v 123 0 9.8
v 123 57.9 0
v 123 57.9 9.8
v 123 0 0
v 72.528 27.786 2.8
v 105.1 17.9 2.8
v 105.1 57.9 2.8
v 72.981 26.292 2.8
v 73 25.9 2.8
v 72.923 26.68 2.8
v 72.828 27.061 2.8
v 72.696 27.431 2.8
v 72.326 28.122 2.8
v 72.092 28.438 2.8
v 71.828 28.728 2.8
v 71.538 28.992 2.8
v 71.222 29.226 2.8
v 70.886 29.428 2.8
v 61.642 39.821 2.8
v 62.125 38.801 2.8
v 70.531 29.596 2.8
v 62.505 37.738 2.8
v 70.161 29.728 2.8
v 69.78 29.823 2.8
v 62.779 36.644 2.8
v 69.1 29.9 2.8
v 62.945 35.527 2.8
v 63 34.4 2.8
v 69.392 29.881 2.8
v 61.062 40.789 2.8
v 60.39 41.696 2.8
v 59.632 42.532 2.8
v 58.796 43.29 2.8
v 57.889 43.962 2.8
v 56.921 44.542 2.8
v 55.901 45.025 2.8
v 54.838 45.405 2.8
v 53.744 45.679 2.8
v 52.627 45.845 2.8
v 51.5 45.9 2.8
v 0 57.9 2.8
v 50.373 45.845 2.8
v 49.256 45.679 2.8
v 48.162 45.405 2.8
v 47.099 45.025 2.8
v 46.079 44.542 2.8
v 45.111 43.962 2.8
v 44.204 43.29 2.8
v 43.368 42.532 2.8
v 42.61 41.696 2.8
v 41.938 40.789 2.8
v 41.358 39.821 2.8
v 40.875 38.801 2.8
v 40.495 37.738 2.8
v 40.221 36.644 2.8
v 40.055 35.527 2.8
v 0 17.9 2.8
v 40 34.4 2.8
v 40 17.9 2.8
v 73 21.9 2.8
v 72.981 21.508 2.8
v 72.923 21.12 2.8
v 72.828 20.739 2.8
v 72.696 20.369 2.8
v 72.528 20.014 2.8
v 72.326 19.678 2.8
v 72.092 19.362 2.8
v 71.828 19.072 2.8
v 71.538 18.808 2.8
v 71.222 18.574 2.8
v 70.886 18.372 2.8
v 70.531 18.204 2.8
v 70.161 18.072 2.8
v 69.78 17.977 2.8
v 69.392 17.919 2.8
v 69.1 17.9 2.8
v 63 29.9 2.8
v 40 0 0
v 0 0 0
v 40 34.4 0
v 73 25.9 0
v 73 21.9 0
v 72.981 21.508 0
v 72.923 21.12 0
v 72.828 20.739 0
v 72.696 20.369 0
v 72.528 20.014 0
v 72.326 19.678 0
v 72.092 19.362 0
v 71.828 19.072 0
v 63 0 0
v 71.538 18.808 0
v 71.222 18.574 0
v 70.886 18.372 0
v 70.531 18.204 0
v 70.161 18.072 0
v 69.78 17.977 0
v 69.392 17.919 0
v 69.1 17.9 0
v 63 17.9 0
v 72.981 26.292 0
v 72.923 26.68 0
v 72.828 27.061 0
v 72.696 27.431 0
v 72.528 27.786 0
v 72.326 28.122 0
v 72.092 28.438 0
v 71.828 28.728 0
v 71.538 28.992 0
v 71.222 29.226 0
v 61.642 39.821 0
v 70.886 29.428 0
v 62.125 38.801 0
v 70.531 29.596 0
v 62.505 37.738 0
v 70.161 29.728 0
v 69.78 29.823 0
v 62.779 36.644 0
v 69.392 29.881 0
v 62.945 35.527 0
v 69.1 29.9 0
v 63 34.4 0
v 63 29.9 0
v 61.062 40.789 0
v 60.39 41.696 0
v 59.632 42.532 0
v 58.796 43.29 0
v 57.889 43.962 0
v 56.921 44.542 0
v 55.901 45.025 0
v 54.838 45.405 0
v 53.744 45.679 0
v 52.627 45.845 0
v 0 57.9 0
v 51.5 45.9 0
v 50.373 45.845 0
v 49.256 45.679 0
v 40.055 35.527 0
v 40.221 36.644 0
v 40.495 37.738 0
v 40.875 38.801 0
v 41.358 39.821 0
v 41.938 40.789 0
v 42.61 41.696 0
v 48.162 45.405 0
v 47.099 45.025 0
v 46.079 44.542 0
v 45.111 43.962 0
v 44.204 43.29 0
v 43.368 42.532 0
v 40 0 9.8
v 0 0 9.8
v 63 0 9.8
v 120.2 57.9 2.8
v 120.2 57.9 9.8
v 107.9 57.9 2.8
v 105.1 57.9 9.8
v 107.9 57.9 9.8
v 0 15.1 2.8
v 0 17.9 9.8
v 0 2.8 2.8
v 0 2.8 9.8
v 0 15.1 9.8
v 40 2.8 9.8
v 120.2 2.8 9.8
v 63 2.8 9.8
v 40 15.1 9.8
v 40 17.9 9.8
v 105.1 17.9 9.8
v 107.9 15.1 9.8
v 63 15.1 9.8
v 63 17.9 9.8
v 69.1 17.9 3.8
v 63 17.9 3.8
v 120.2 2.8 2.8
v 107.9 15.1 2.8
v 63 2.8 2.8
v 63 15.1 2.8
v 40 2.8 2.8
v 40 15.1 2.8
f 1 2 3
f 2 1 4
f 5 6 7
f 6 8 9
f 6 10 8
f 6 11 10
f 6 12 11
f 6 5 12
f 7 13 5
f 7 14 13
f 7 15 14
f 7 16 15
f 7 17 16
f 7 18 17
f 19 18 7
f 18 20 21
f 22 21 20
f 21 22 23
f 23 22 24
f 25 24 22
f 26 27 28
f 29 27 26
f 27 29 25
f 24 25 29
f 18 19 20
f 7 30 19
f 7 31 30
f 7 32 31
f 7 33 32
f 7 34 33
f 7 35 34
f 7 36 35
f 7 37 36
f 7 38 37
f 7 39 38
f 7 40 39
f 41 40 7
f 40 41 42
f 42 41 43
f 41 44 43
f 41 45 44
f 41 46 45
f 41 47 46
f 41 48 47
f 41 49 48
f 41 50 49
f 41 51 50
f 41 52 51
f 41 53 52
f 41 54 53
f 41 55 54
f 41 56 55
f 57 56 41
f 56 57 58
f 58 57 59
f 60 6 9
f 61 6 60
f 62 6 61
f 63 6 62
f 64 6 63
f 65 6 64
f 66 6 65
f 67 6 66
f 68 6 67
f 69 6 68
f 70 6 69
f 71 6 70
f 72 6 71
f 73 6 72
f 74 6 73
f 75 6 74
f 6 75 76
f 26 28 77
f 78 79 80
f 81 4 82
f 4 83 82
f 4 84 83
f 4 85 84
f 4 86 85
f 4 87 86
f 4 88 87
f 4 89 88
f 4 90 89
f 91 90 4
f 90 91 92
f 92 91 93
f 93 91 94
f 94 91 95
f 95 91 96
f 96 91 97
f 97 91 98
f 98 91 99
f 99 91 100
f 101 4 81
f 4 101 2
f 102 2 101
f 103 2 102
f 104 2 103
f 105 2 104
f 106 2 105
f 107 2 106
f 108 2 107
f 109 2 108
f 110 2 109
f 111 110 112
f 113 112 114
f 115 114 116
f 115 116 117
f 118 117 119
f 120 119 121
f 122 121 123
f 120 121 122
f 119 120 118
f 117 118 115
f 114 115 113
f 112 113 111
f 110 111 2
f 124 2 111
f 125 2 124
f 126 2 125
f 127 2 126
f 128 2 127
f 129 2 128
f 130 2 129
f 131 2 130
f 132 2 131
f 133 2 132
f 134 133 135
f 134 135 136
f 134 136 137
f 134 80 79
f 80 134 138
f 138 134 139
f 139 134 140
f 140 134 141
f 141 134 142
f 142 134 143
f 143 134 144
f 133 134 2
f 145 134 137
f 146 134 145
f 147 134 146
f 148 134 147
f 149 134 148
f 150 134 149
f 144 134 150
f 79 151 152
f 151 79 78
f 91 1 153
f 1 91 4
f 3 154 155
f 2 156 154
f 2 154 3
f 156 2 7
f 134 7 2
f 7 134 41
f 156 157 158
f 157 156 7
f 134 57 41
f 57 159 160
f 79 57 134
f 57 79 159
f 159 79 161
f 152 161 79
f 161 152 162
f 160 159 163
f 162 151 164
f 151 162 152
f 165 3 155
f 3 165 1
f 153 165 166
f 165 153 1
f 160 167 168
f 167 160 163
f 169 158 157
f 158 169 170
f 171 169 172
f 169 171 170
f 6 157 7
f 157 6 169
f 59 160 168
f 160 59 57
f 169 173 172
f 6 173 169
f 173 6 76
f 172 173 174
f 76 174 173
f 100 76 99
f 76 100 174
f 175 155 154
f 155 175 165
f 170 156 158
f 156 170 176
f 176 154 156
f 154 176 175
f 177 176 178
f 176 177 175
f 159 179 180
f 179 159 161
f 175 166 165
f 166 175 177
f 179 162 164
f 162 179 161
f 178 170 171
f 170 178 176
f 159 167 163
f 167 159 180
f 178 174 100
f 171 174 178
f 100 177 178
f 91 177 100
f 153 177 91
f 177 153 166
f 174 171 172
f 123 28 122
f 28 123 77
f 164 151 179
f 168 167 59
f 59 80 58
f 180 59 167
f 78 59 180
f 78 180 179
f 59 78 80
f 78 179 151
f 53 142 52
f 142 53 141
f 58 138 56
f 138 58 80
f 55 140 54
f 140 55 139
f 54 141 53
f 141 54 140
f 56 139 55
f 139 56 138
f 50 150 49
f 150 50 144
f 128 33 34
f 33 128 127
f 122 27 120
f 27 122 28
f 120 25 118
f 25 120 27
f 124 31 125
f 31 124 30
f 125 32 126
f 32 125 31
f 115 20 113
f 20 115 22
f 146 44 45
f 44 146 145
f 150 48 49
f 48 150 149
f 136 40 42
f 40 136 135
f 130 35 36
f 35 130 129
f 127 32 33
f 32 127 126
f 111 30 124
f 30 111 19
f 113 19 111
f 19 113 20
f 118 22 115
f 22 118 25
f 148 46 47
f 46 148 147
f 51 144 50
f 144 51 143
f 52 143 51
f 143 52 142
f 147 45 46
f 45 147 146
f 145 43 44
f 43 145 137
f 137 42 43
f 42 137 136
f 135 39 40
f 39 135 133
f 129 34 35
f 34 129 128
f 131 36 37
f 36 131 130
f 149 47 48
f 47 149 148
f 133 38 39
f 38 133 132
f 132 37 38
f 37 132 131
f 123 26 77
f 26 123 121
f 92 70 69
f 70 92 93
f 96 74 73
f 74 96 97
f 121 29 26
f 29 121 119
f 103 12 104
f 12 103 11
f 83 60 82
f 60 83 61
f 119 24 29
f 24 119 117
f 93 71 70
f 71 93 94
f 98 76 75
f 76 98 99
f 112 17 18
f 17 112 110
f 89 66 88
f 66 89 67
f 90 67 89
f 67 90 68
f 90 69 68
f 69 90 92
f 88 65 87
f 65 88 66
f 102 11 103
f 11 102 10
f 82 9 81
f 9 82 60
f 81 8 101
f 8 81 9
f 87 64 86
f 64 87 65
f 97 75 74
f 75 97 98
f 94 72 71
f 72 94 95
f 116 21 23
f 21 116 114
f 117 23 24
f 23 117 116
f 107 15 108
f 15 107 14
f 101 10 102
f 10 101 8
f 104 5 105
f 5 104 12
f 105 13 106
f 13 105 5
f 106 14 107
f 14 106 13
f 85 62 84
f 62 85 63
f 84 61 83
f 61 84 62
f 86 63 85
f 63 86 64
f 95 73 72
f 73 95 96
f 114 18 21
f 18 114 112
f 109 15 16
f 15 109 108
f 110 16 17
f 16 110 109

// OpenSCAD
/*
  Aquarium Shrimp Escape Guard - Right guard (outlet pipe)
  --------------------------------------------------------
  Opens the right guard on its own: render (F6) and export the STL (F7).
  All parameters are in aquarium-shrimp-escape-guard.scad.
*/

use <aquarium-shrimp-escape-guard.scad>

right_guard();
